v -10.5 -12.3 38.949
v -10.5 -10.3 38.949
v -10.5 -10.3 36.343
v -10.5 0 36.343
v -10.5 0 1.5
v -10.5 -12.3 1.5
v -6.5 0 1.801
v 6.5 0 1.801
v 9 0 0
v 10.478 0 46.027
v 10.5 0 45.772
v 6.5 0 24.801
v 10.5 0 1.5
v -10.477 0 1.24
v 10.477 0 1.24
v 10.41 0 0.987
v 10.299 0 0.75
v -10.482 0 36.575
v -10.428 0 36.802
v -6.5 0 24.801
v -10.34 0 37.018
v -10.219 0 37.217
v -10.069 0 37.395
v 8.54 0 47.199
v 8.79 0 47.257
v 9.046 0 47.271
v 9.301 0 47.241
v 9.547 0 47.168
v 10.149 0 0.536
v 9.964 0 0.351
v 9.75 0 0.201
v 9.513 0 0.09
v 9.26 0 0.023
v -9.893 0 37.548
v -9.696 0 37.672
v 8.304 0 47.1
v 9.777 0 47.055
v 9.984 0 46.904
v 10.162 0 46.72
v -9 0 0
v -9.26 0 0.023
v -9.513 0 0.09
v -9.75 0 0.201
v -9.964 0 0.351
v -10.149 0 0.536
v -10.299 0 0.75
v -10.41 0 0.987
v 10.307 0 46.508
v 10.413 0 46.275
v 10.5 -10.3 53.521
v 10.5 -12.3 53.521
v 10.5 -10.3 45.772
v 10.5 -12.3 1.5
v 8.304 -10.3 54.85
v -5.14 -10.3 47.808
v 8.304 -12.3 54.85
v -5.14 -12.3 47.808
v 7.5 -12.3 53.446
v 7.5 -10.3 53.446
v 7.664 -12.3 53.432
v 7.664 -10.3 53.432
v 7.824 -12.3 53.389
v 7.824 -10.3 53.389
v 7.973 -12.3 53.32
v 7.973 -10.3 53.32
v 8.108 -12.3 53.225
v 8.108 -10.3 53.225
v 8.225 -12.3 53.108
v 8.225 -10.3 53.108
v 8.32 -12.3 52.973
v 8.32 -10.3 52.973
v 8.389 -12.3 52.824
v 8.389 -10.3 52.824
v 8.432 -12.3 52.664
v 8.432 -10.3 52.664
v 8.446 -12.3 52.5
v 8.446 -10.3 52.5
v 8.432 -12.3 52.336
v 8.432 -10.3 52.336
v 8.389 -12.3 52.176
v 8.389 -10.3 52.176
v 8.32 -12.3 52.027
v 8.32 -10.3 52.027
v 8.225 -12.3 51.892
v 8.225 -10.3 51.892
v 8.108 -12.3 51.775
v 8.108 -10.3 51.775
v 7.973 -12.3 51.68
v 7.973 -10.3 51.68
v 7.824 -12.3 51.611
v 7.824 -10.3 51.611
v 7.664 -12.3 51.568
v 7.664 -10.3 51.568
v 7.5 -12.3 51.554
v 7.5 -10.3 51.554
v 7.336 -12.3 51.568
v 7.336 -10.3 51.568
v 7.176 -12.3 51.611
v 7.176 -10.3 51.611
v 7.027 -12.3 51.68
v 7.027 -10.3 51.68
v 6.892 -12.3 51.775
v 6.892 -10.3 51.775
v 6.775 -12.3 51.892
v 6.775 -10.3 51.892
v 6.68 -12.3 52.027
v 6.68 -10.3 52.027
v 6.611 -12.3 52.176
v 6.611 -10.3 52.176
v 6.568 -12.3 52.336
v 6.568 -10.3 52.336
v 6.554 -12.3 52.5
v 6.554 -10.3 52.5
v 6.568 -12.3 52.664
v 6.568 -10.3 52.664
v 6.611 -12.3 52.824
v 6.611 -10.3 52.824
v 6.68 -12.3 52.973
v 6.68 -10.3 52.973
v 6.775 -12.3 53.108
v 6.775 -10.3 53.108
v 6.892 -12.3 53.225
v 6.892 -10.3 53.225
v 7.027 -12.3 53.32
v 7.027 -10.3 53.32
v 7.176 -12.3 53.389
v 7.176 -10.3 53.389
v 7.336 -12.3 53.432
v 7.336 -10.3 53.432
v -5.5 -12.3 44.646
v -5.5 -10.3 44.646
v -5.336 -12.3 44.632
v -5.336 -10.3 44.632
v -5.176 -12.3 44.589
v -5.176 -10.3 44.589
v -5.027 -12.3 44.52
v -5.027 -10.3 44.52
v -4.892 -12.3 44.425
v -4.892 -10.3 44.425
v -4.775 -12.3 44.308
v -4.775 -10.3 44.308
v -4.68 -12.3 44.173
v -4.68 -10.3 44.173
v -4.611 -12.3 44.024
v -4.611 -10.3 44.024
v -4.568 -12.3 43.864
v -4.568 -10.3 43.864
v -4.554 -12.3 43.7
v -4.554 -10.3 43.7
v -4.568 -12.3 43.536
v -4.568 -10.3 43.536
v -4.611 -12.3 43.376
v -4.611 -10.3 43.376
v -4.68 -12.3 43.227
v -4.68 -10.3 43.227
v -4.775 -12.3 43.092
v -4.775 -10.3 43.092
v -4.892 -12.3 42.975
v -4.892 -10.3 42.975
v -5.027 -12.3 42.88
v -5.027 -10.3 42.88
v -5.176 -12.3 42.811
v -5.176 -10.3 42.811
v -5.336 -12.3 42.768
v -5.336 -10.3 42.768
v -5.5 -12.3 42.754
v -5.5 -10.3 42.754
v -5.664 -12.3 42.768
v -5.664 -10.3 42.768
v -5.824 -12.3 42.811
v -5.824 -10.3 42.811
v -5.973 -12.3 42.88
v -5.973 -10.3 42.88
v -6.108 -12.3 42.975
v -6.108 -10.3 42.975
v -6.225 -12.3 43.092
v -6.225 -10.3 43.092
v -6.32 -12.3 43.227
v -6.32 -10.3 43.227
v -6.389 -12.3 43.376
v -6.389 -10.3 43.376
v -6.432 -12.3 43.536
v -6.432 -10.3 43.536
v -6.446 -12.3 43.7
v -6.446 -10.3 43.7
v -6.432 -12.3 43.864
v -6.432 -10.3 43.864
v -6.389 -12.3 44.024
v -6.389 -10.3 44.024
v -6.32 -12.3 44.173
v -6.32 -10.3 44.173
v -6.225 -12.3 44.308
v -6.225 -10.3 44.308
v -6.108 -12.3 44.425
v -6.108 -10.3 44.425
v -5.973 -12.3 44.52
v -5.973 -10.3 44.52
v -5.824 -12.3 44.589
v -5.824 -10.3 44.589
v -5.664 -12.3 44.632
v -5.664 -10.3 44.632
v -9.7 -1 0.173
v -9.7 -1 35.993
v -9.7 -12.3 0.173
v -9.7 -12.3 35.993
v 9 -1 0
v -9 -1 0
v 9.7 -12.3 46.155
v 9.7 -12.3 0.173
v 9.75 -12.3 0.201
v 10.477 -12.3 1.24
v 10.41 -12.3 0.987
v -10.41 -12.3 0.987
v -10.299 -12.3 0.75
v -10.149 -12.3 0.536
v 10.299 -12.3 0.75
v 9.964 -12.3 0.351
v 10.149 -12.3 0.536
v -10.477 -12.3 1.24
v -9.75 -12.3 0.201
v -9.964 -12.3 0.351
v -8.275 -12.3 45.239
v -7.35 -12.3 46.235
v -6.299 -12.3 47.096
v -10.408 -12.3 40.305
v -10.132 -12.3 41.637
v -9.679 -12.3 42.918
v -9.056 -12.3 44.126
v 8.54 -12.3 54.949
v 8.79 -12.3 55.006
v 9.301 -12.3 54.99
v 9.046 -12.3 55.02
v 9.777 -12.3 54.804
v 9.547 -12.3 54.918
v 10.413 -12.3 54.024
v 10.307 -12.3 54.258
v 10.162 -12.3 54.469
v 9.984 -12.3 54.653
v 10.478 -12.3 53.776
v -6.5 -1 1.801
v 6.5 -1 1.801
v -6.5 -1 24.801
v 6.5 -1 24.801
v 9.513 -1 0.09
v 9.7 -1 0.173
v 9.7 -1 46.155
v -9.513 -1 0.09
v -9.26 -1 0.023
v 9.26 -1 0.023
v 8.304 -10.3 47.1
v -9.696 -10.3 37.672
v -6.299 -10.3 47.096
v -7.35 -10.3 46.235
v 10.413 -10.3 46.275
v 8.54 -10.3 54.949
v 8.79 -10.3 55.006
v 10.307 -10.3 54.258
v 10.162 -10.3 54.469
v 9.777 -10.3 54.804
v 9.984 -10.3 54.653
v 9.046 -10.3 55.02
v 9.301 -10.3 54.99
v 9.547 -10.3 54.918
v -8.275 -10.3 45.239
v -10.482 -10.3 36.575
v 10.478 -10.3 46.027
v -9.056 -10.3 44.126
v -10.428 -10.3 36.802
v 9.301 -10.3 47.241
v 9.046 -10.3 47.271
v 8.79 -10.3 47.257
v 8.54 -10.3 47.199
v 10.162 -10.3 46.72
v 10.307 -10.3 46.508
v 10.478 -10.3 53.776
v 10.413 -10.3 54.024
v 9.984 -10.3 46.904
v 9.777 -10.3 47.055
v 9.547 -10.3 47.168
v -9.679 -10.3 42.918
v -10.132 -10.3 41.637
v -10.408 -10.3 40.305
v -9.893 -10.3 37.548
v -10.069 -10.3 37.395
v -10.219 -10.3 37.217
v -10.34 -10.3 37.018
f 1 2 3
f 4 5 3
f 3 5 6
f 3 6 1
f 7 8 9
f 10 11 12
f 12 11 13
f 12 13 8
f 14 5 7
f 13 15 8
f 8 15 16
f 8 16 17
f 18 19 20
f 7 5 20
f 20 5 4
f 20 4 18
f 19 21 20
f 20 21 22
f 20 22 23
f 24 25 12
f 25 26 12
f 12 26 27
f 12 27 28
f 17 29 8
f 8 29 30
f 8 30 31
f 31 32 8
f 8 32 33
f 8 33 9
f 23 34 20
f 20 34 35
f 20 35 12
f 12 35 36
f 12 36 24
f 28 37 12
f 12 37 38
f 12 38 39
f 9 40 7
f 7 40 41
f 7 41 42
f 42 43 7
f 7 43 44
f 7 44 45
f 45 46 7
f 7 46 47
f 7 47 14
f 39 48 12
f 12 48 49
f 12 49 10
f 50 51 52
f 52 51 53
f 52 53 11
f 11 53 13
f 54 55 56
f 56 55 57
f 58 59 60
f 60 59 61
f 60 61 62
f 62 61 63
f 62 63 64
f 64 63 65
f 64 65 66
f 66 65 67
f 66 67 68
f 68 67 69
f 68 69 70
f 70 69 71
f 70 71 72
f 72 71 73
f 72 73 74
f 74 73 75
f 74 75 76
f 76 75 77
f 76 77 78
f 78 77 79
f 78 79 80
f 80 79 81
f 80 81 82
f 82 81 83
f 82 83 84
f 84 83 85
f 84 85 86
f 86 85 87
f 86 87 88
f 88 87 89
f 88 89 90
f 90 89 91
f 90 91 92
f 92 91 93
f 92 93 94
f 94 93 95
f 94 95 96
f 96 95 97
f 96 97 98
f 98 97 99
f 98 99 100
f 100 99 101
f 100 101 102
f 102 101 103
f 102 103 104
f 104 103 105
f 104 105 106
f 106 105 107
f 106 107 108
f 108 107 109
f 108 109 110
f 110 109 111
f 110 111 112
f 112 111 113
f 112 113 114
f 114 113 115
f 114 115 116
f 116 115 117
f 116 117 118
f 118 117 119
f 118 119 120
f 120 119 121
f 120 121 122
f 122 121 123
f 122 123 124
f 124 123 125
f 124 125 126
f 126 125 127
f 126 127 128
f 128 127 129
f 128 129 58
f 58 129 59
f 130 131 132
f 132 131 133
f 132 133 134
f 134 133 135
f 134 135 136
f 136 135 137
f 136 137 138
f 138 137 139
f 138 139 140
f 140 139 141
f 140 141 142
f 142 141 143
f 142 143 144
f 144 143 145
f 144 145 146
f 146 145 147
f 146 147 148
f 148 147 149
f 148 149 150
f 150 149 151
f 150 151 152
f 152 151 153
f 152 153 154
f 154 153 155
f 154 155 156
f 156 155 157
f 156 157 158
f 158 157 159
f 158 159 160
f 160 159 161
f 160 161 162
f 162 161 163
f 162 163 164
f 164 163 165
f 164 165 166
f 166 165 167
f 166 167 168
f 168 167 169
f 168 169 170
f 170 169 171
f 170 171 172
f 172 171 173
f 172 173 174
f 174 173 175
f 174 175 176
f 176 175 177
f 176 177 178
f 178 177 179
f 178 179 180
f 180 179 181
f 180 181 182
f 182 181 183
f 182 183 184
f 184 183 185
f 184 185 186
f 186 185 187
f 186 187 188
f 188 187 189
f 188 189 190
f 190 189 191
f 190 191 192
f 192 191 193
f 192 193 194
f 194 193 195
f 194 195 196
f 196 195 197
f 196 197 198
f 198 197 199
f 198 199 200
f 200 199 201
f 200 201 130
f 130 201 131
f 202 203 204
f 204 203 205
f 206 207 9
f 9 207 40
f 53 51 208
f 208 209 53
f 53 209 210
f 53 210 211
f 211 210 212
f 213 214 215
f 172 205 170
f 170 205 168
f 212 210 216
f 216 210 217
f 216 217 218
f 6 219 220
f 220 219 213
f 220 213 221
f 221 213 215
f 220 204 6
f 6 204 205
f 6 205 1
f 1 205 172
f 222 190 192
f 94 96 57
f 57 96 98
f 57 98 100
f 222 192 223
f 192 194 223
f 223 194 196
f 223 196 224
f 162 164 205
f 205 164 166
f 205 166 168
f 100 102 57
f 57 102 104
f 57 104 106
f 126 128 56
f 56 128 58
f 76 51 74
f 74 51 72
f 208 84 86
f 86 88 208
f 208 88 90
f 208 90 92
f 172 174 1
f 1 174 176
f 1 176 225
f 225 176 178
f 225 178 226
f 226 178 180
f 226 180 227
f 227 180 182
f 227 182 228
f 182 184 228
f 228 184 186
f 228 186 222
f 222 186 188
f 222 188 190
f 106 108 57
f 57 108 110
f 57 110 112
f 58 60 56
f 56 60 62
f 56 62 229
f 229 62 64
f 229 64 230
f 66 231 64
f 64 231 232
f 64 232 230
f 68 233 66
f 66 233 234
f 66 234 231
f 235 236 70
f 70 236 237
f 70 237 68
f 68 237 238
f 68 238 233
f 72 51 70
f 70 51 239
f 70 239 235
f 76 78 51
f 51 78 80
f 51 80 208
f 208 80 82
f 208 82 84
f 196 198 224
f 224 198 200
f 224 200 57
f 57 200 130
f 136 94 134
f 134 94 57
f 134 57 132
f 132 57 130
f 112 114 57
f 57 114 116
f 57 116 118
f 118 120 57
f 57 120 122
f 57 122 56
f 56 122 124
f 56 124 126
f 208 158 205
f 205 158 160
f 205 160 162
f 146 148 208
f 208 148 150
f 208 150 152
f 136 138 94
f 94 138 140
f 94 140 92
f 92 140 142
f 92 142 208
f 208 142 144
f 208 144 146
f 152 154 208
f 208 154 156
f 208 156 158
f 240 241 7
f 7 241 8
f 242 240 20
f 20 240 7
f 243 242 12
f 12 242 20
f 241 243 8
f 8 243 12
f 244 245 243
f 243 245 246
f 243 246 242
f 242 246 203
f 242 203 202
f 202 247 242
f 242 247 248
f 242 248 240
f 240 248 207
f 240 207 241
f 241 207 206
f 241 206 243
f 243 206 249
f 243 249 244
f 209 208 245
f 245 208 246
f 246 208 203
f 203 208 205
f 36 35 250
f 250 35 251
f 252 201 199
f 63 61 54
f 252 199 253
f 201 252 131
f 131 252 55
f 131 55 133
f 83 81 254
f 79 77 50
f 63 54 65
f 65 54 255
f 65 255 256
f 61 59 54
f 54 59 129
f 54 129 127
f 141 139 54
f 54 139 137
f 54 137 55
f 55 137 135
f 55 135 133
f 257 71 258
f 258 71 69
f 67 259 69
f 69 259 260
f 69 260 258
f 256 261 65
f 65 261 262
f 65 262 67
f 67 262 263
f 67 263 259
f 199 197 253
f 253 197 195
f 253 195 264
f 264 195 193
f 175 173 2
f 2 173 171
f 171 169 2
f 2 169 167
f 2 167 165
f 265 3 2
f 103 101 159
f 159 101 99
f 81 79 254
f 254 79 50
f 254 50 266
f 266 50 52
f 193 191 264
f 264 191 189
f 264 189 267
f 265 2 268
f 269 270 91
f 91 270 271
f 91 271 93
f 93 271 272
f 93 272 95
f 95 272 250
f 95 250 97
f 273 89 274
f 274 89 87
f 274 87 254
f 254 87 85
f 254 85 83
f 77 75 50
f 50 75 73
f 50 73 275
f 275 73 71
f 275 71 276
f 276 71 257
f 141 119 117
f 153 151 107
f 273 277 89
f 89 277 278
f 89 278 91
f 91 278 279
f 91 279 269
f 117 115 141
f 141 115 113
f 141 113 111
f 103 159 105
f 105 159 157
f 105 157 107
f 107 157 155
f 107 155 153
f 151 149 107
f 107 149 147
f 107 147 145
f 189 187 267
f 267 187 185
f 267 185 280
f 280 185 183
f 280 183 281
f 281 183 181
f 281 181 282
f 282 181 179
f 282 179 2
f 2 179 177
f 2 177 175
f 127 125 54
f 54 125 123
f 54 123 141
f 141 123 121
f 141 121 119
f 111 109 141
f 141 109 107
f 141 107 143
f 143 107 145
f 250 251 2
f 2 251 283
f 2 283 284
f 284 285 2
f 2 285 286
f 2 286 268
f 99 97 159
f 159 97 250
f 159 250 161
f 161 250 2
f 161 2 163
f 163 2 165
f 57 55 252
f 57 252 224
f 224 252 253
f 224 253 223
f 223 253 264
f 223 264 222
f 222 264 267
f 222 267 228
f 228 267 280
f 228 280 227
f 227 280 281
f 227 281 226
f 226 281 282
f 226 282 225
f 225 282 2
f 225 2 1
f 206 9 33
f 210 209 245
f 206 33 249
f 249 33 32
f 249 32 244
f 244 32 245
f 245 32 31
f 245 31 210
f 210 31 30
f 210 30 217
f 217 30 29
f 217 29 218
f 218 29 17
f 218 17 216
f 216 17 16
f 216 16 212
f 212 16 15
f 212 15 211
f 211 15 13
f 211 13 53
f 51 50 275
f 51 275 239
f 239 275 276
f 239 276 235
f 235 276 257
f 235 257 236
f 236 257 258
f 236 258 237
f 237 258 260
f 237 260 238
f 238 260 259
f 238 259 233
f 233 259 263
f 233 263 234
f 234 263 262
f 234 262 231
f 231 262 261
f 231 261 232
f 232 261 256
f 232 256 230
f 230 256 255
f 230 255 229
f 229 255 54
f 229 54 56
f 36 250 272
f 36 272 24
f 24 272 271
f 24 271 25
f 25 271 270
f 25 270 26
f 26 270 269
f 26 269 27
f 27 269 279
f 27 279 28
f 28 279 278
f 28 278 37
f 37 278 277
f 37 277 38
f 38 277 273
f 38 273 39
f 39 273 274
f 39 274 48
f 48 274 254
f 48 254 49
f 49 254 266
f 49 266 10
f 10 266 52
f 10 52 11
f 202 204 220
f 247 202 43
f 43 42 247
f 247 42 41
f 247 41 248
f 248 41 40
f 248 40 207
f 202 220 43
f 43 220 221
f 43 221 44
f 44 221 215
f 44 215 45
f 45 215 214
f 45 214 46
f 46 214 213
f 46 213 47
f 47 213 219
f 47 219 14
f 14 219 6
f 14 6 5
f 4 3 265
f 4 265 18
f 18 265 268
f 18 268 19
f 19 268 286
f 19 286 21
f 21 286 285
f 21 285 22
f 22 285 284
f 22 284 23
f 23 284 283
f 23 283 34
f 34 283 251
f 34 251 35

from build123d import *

# Parameters (mm, degrees)
BOSS_EXTRUDE1_DEPTH   = 12.3
BOSS_EXTRUDE1_2_DEPTH = 12.3
SKETCH1_3_W           = 13
SKETCH1_3_H           = 23
BOSS_EXTRUDE2_DEPTH   = 1
SKETCH1_4_R           = 0.946305397
BOSS_EXTRUDE3_DEPTH   = 12.3
SKETCH1_6_R           = 0.946305397
CUT_EXTRUDE2_DEPTH    = 10.3
FILLET1_R             = 10
FILLET2_R             = 1.5


with BuildPart() as part:
    # Sketch1 → Boss-Extrude1 (new body)
    with BuildSketch(Plane(origin=(0, 0, 0), x_dir=(1, 0, 0), z_dir=(0, 1, 0))):
        Polygon((-9.7, 0), (-10.5, 0), (-10.5, -35.574062231), (-9.7, -35.99310985), align=None)
    extrude(amount=-BOSS_EXTRUDE1_DEPTH)



with BuildPart() as body_2:
    # Sketch1 → Boss-Extrude1 2 (new body)
    with BuildSketch(Plane(origin=(0, 0, 0), x_dir=(1, 0, 0), z_dir=(0, 1, 0))):
        Polygon((10.5, 0), (9.7, 0), (9.7, -46.155014612), (10.5, -46.574062231), align=None)
    extrude(amount=-BOSS_EXTRUDE1_2_DEPTH)


with BuildPart() as part_1:
    add(part.part)

    add(body_2.part)  # Boss-Extrude2 merges body 2
    # Sketch1<3> → Boss-Extrude2 (add)
    with BuildSketch(Plane(origin=(0, 0, 0), x_dir=(1, 0, 0), z_dir=(0, 1, 0))):
        Polygon((9.7, 0), (-9.7, 0), (-9.7, -36.489905511), (-10.5, -36.489905511), (-10.5, -37.250622364), (10.5, -48.250622364), (10.5, -46.642015581), (9.7, -46.642015581), align=None)
        with Locations((0, -13.300665343)):
            Rectangle(SKETCH1_3_W, SKETCH1_3_H, mode=Mode.SUBTRACT)
    extrude(amount=-BOSS_EXTRUDE2_DEPTH)

    # Sketch1<4> → Boss-Extrude3 (add)
    with BuildSketch(Plane(origin=(0, 0, 0), x_dir=(1, 0, 0), z_dir=(0, 1, 0))):
        Polygon((-10.5, -35.574062231), (-10.5, -45), (10.5, -56), (10.5, -46.574062231), align=None)
        with Locations((7.5, -52.5)):
            Circle(SKETCH1_4_R, mode=Mode.SUBTRACT)
        with Locations((-5.5, -43.7)):
            Circle(SKETCH1_4_R, mode=Mode.SUBTRACT)
    extrude(amount=-BOSS_EXTRUDE3_DEPTH)

    # Sketch1<6> → Cut-Extrude2 (cut)
    with BuildSketch(Plane(origin=(0, 0, 0), x_dir=(1, 0, 0), z_dir=(0, 1, 0))):
        Polygon((10.5, -48.250622364), (-10.5, -37.250622364), (-10.5, -45), (10.5, -56), align=None)
        with Locations((-5.5, -43.7)):
            Circle(SKETCH1_6_R, mode=Mode.SUBTRACT)
        with Locations((7.5, -52.5)):
            Circle(SKETCH1_6_R, mode=Mode.SUBTRACT)
    extrude(amount=-CUT_EXTRUDE2_DEPTH, mode=Mode.SUBTRACT)

    # Fillet1
    fillet1_edges = [part_1.edges().sort_by_distance(p)[0] for p in [
        (-10.5, -11.3, 45),
    ]]
    fillet(fillet1_edges, radius=FILLET1_R)

    # Fillet2
    fillet2_edges = [part_1.edges().sort_by_distance(p)[0] for p in [
        (10.5, -6.15, 0),
        (10.5, -11.3, 56),
        (10.5, -5.15, 48.250622364),
        (-10.5, -6.15, 0),
        (-10.5, -5.15, 37.250622364),
    ]]
    fillet(fillet2_edges, radius=FILLET2_R)


solid = part_1.part
